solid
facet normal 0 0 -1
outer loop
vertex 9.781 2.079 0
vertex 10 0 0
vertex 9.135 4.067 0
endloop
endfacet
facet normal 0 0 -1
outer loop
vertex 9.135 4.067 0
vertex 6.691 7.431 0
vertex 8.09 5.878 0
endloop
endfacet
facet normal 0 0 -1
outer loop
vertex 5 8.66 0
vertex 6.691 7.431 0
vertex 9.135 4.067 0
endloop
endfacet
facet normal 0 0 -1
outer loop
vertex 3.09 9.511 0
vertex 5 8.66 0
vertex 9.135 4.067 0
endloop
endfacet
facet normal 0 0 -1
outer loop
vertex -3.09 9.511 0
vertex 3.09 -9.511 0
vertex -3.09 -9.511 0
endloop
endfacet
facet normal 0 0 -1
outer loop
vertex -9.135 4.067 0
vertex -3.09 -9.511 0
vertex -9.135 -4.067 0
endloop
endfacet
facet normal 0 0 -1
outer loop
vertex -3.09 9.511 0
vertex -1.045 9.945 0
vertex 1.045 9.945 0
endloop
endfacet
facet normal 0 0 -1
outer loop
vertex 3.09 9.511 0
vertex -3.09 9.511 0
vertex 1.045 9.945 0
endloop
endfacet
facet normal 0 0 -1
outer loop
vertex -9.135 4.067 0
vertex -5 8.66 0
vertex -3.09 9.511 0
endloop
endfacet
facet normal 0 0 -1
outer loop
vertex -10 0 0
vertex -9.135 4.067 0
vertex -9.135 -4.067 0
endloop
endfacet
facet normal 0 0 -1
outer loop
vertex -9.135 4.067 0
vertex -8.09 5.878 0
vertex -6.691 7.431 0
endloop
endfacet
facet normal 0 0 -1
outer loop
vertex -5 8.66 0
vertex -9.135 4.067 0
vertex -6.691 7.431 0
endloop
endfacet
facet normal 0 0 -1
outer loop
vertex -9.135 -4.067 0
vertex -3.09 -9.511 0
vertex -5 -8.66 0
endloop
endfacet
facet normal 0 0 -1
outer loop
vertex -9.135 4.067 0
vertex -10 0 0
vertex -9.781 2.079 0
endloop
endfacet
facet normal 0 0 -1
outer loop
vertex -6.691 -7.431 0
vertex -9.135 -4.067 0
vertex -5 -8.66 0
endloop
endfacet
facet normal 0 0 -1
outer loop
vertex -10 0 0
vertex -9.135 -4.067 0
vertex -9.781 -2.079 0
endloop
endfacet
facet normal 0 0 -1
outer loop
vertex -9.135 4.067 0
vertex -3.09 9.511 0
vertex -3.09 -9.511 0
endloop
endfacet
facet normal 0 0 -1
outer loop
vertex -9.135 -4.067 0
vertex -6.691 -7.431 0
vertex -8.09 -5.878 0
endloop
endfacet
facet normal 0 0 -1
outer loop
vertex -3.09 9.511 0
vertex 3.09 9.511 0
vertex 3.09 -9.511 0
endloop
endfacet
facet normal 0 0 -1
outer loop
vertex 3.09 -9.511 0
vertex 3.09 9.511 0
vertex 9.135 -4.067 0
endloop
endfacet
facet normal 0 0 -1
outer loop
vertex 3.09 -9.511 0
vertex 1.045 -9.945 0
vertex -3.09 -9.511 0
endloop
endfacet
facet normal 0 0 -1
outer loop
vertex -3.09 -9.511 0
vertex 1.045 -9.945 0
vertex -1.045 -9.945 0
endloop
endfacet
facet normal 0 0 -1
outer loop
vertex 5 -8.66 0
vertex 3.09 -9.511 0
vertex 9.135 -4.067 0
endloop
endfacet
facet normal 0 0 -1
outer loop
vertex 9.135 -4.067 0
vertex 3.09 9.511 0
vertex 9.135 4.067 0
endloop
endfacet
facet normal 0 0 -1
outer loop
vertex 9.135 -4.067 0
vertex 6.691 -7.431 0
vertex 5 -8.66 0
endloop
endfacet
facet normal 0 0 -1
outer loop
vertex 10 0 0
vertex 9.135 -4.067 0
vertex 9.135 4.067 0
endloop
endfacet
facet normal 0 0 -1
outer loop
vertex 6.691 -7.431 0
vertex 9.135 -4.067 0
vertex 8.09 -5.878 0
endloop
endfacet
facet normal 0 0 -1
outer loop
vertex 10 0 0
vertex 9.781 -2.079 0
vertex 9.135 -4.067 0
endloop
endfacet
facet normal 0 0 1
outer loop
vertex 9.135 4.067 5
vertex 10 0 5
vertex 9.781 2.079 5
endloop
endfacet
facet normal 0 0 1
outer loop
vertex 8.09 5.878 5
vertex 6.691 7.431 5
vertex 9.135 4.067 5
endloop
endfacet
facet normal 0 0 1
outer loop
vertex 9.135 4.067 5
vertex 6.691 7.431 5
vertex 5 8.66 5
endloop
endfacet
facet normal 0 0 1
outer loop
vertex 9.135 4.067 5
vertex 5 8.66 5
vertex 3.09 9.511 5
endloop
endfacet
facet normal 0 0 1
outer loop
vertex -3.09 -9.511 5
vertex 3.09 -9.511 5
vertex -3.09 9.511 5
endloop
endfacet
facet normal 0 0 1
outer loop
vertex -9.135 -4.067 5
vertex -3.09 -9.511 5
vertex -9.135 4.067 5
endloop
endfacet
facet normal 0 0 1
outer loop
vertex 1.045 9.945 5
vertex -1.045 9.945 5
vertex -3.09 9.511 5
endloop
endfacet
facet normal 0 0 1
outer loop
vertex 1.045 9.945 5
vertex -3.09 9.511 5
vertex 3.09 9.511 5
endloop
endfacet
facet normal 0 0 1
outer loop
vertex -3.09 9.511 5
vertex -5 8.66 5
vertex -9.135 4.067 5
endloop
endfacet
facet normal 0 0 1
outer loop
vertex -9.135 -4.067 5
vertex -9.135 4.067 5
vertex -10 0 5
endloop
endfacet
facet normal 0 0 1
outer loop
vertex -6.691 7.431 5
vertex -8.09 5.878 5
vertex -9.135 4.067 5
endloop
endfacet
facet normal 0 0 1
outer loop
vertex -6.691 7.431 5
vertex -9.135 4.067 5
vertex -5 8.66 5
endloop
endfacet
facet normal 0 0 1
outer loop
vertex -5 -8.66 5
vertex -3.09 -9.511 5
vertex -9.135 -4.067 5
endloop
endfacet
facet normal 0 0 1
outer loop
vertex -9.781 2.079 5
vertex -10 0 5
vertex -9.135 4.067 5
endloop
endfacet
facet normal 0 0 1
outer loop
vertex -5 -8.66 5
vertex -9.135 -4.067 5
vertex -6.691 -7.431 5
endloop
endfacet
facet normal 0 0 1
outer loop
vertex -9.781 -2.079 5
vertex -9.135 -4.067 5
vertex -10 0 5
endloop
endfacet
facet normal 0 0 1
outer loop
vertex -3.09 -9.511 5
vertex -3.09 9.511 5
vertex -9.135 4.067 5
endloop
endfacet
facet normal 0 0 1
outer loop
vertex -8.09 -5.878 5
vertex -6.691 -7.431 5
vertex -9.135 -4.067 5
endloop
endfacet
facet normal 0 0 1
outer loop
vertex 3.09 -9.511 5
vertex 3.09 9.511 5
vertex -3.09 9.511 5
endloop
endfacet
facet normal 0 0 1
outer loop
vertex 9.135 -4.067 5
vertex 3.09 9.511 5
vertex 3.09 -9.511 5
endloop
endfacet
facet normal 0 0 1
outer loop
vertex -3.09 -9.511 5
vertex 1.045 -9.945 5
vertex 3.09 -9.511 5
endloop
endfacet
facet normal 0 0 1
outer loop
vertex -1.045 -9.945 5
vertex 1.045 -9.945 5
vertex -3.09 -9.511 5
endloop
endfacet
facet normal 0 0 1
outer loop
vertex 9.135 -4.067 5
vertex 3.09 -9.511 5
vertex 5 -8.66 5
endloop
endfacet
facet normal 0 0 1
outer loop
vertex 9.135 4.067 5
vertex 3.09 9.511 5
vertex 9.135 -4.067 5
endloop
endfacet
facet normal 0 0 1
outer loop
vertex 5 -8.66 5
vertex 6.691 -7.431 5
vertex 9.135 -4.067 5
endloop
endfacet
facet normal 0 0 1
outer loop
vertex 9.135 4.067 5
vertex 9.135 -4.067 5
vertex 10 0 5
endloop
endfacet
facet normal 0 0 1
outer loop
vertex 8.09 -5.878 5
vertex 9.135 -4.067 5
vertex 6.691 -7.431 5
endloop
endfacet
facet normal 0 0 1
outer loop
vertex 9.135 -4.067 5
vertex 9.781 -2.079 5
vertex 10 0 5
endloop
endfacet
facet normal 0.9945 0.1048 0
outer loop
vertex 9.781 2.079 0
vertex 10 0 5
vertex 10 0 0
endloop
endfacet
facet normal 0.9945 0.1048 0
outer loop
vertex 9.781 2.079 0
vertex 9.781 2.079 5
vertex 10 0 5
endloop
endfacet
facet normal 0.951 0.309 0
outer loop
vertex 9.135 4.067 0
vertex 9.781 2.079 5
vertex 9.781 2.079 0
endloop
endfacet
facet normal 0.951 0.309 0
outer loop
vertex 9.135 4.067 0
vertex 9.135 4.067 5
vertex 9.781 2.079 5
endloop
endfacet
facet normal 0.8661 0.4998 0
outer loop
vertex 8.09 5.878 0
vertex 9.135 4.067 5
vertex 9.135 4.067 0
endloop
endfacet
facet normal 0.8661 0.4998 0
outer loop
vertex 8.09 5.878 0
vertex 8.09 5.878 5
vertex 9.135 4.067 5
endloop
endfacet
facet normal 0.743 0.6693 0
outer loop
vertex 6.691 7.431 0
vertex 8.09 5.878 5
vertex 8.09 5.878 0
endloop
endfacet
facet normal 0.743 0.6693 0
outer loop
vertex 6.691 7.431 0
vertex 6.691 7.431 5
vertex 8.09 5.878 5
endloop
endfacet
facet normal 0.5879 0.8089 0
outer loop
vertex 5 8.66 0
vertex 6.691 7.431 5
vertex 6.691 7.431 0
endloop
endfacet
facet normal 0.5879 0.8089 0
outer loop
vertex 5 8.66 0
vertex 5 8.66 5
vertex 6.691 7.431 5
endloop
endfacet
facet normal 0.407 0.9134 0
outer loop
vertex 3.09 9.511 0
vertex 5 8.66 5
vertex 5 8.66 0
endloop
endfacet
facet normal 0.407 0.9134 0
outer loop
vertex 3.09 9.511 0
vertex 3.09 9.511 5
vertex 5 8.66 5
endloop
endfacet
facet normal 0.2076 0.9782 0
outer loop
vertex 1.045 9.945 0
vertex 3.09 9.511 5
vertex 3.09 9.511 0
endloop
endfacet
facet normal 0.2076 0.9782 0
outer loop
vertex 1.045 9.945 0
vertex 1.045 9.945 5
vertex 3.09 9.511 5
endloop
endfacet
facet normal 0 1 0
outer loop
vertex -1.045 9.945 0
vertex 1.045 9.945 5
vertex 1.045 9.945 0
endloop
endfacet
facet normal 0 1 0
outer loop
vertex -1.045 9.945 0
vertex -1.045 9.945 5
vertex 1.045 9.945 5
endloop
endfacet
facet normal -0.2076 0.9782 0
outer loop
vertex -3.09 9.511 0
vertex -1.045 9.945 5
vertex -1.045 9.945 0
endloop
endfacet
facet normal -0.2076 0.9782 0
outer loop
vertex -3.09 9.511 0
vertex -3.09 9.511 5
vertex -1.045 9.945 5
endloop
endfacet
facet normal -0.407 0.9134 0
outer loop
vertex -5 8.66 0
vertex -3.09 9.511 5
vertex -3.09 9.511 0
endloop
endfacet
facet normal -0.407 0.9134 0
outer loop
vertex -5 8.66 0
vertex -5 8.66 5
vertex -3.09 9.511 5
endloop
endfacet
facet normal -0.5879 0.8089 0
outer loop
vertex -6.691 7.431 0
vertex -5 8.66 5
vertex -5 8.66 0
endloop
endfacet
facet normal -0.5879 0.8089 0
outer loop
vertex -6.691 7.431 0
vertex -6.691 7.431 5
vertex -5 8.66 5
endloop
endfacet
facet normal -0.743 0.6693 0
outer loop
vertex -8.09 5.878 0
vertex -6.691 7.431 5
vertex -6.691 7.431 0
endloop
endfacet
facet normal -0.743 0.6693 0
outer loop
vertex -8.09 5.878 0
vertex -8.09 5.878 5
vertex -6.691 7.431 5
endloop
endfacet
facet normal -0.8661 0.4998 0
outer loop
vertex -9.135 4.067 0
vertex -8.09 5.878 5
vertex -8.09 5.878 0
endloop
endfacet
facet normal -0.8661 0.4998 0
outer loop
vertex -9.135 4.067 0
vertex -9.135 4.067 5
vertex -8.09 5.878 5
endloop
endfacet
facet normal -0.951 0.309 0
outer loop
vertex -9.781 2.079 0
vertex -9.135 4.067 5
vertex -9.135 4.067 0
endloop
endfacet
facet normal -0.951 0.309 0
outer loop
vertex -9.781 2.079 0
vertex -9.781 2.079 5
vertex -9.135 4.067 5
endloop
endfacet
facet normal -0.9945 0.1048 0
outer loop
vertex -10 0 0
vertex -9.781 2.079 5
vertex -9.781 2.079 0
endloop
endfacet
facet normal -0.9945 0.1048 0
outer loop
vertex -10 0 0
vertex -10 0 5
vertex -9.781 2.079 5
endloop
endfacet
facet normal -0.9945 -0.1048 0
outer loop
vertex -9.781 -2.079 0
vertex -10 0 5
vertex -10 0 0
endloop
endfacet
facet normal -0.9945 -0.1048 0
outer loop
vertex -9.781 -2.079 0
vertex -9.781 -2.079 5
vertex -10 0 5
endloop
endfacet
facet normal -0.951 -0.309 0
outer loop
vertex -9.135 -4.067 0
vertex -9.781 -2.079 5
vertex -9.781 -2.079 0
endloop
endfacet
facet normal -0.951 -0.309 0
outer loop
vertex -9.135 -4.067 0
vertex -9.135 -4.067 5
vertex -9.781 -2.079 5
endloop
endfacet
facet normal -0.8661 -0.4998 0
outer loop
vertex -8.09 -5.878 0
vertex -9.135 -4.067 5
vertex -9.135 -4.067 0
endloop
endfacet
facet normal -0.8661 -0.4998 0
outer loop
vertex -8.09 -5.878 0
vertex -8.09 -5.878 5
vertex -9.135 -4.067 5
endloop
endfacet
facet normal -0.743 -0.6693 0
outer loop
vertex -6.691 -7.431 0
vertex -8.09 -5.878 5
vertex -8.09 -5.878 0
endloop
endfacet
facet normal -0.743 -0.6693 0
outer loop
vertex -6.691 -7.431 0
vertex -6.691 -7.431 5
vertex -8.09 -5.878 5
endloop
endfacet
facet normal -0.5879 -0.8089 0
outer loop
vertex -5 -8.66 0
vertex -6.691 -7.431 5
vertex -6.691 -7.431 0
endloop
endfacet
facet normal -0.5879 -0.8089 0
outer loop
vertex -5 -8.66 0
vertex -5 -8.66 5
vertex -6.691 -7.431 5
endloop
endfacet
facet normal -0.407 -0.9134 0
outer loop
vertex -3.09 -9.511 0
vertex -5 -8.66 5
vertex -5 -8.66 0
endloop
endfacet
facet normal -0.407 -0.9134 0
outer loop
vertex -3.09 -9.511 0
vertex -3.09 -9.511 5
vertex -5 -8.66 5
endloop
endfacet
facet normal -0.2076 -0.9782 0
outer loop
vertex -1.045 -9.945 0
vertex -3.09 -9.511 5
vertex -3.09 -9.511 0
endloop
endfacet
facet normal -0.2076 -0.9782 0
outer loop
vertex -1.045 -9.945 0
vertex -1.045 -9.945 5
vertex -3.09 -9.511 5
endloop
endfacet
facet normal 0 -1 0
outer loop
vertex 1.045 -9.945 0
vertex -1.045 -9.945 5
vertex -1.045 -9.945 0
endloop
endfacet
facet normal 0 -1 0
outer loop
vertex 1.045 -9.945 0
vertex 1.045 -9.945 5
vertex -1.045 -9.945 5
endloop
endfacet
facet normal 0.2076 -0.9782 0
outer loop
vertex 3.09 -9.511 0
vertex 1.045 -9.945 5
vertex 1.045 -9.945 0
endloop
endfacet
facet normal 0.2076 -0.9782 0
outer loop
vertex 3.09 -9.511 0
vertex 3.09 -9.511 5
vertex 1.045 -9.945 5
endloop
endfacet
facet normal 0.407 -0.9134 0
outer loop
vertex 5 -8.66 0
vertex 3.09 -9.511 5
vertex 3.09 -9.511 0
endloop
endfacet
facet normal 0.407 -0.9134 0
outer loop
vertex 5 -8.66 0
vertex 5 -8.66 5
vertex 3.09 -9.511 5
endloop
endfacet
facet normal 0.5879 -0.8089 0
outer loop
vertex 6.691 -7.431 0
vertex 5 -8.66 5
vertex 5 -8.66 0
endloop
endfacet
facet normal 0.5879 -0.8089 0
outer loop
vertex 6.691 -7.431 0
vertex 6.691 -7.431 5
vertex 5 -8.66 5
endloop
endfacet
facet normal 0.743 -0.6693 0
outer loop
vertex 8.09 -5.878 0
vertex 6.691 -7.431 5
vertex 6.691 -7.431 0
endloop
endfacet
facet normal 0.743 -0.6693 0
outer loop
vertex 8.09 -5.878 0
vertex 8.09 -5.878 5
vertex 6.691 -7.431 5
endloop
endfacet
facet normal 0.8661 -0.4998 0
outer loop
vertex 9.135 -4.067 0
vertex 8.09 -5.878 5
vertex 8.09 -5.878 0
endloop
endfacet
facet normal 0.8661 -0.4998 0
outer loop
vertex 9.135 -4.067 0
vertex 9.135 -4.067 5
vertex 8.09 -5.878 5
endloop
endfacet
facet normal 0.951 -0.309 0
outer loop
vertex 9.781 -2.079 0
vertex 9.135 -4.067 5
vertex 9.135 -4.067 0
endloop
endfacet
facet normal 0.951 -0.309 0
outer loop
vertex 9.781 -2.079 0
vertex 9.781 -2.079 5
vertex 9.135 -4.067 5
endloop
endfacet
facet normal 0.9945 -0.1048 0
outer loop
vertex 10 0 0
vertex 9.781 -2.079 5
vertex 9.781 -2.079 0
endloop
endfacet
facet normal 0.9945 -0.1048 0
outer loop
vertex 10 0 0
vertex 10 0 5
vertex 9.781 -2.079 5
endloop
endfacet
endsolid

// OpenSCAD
module spiral(radius, height, segments) {
  linear_extrude(height = height) {
    circle(r = radius);
  }
}

spiral(radius = 10, height = 5, segments = 48);
